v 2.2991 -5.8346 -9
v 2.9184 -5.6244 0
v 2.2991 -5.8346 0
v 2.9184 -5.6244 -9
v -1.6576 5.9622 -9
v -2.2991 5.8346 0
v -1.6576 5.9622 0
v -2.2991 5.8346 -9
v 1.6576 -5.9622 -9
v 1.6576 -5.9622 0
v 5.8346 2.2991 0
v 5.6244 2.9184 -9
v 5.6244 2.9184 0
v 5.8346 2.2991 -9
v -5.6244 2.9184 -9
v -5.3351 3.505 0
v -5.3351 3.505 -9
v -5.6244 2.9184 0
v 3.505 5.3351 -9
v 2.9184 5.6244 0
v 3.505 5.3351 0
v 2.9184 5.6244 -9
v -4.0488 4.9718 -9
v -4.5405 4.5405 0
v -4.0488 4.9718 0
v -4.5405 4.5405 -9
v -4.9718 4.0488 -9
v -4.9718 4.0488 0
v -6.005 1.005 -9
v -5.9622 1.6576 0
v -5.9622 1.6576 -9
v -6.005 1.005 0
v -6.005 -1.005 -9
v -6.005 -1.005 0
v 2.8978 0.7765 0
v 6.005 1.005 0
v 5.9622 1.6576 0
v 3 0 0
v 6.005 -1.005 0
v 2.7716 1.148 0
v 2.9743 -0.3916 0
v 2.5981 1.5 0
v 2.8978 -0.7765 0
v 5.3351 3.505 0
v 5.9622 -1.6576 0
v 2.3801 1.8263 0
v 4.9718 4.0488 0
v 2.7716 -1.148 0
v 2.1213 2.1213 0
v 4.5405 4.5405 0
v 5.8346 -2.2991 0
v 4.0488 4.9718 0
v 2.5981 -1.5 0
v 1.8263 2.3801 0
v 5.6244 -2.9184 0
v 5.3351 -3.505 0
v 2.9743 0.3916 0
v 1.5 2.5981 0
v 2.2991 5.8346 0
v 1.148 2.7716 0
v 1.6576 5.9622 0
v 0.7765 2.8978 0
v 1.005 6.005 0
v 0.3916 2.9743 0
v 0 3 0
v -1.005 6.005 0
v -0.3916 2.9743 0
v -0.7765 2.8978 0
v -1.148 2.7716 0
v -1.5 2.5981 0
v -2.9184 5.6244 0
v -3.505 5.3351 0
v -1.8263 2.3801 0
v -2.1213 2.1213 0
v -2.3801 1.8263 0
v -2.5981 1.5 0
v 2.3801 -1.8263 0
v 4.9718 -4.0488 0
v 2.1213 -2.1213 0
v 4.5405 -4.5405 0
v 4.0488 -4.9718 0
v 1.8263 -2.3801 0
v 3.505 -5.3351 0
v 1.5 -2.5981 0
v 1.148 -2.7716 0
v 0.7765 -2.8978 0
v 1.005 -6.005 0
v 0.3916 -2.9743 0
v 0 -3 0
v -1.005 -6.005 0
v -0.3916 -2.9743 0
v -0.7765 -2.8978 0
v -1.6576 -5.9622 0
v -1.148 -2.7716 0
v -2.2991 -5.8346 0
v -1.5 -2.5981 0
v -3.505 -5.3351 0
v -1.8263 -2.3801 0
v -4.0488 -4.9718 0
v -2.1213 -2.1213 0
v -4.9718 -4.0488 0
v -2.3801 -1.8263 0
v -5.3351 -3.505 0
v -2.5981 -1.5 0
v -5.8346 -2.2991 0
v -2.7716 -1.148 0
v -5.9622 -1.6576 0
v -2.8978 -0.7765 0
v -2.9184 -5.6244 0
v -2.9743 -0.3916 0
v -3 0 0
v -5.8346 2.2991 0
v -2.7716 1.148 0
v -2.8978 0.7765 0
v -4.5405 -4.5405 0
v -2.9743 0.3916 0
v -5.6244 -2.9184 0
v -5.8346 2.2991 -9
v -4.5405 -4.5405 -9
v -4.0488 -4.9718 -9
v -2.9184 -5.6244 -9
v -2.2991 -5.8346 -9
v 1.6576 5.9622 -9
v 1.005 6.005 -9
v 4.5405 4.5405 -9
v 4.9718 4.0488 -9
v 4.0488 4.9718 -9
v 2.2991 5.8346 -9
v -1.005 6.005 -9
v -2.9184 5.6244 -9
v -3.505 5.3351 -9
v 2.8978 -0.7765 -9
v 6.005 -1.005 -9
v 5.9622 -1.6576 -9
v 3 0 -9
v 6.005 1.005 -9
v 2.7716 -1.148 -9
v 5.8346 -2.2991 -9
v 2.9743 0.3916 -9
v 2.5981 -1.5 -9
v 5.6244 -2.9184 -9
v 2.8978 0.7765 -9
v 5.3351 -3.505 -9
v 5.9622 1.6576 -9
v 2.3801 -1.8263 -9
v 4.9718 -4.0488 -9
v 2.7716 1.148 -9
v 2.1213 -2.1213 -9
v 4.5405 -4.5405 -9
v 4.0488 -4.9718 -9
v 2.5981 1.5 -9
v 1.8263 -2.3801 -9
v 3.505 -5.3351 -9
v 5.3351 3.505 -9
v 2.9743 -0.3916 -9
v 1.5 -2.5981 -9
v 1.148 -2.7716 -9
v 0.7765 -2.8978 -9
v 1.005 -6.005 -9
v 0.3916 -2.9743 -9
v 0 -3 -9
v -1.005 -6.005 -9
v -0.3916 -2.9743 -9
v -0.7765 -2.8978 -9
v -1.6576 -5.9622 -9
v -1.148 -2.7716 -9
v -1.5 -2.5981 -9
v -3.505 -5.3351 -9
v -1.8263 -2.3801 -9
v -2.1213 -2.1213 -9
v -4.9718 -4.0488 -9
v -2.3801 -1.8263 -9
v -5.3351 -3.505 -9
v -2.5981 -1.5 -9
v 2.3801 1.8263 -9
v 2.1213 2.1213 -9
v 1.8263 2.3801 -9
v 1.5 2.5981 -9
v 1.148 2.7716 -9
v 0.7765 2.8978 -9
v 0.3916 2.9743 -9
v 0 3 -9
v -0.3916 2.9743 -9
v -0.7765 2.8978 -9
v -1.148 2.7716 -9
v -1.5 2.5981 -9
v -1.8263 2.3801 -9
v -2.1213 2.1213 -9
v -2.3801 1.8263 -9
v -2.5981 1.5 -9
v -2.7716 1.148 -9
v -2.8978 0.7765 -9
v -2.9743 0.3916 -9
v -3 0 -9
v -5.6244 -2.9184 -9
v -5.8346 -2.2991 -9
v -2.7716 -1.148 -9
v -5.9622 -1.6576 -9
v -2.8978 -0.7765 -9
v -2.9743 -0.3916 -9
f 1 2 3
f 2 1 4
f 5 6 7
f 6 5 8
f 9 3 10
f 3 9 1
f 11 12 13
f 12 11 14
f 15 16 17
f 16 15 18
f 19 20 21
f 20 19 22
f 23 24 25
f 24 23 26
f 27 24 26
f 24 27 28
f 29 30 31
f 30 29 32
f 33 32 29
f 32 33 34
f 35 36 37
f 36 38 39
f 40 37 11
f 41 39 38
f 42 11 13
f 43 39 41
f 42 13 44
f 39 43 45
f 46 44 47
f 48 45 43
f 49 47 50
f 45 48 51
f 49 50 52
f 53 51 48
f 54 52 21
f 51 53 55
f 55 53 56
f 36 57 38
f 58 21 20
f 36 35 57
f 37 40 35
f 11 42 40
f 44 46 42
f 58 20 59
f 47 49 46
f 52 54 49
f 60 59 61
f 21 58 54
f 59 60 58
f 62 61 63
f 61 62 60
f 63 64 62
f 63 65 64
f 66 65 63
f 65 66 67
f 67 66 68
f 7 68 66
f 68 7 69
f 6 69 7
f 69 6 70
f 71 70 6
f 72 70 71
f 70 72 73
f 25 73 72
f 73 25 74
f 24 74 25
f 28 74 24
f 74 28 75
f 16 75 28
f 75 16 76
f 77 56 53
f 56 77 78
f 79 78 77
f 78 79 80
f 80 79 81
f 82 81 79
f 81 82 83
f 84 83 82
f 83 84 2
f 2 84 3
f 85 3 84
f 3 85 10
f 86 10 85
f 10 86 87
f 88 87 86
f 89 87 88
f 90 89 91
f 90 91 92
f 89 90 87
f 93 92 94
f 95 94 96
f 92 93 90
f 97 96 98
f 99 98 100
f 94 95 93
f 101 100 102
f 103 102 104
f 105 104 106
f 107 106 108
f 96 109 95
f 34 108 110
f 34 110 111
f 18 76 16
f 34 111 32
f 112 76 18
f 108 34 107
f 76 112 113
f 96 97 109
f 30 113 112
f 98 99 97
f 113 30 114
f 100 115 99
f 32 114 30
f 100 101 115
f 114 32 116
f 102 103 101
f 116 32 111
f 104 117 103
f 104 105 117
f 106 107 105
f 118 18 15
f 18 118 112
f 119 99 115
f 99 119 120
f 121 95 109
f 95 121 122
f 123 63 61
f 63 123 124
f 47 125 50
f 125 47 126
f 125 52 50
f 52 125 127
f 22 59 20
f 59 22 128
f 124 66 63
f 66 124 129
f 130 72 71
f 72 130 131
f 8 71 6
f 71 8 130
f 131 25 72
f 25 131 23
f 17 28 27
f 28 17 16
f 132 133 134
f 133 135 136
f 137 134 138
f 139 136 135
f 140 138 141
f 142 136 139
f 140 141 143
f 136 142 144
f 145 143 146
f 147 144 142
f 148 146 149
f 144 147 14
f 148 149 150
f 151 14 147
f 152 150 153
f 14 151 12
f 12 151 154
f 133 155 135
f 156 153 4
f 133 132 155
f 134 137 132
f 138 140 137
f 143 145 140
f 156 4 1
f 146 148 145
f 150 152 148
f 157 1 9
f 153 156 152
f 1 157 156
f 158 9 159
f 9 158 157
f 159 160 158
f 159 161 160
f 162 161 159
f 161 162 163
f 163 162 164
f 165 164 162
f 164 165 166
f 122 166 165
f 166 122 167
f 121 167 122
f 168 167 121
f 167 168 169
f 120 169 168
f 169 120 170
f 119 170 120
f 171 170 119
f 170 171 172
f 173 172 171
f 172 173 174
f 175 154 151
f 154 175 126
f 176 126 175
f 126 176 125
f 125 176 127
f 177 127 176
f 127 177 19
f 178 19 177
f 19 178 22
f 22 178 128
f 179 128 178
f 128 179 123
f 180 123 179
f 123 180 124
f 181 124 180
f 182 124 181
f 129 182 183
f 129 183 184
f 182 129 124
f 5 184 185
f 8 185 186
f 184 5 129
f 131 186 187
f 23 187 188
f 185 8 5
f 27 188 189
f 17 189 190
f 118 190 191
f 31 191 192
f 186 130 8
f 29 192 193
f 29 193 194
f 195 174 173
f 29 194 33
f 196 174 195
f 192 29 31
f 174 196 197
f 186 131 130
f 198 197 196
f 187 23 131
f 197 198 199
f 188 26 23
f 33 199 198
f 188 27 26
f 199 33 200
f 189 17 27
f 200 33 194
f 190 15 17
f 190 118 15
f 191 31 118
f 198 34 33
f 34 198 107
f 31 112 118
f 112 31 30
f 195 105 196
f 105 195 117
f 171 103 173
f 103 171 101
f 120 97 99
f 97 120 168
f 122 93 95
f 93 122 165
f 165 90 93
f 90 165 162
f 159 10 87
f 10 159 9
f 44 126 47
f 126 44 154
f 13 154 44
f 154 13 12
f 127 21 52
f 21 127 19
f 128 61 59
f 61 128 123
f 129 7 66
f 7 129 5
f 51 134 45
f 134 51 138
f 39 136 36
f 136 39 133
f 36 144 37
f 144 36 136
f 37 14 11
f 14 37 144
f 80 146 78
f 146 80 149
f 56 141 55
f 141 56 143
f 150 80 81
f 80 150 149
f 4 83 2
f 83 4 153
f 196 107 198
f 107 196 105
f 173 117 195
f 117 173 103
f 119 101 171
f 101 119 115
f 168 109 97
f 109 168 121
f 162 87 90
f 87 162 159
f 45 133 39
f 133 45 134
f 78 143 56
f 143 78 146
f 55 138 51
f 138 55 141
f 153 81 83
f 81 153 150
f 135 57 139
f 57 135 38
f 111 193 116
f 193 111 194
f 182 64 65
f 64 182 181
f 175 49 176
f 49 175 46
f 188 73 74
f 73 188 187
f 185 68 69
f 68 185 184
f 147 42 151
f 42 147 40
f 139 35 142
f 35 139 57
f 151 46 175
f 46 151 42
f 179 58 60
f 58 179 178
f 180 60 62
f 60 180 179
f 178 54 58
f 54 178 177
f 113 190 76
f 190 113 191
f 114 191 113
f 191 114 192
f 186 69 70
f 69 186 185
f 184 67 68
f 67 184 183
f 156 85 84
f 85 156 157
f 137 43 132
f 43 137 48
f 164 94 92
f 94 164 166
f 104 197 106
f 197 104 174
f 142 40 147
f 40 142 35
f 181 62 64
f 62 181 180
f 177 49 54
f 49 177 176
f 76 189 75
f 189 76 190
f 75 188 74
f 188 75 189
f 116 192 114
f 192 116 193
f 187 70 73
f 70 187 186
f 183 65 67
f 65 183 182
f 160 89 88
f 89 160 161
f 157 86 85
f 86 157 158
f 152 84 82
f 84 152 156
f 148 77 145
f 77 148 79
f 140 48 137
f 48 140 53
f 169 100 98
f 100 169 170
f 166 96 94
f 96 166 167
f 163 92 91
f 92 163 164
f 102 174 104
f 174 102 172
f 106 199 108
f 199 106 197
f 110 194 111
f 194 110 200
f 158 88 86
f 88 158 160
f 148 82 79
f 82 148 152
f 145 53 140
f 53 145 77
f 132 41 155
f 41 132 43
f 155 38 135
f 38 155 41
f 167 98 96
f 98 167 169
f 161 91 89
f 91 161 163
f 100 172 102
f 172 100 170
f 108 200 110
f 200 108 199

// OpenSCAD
$fn = 48;


difference() {
	union() {
		translate(v = [0, 0, 0]) {
			difference() {
				union() {
					color(alpha = 1.0000000000, c = "Gold") {
						translate(v = [0, 0, 0]) {
							rotate(a = [0, 0, 0]) {
								translate(v = [0, 0, -9]) {
									linear_extrude(height = 9) {
										offset(r = 5) {
											square(center = true, size = [2.0100000000, 2.0100000000]);
										}
									}
								}
							}
						}
					}
				}
				union() {
					color(alpha = 1.0000000000, c = "Gold") {
						translate(v = [0.0000000000, 0.0000000000, 0]) {
							rotate(a = [0, 0, 0]) {
								translate(v = [0, 0, -250]) {
									cylinder(h = 500, r = 3.0000000000);
								}
							}
						}
					}
				}
			}
		}
	}
	union();
}
